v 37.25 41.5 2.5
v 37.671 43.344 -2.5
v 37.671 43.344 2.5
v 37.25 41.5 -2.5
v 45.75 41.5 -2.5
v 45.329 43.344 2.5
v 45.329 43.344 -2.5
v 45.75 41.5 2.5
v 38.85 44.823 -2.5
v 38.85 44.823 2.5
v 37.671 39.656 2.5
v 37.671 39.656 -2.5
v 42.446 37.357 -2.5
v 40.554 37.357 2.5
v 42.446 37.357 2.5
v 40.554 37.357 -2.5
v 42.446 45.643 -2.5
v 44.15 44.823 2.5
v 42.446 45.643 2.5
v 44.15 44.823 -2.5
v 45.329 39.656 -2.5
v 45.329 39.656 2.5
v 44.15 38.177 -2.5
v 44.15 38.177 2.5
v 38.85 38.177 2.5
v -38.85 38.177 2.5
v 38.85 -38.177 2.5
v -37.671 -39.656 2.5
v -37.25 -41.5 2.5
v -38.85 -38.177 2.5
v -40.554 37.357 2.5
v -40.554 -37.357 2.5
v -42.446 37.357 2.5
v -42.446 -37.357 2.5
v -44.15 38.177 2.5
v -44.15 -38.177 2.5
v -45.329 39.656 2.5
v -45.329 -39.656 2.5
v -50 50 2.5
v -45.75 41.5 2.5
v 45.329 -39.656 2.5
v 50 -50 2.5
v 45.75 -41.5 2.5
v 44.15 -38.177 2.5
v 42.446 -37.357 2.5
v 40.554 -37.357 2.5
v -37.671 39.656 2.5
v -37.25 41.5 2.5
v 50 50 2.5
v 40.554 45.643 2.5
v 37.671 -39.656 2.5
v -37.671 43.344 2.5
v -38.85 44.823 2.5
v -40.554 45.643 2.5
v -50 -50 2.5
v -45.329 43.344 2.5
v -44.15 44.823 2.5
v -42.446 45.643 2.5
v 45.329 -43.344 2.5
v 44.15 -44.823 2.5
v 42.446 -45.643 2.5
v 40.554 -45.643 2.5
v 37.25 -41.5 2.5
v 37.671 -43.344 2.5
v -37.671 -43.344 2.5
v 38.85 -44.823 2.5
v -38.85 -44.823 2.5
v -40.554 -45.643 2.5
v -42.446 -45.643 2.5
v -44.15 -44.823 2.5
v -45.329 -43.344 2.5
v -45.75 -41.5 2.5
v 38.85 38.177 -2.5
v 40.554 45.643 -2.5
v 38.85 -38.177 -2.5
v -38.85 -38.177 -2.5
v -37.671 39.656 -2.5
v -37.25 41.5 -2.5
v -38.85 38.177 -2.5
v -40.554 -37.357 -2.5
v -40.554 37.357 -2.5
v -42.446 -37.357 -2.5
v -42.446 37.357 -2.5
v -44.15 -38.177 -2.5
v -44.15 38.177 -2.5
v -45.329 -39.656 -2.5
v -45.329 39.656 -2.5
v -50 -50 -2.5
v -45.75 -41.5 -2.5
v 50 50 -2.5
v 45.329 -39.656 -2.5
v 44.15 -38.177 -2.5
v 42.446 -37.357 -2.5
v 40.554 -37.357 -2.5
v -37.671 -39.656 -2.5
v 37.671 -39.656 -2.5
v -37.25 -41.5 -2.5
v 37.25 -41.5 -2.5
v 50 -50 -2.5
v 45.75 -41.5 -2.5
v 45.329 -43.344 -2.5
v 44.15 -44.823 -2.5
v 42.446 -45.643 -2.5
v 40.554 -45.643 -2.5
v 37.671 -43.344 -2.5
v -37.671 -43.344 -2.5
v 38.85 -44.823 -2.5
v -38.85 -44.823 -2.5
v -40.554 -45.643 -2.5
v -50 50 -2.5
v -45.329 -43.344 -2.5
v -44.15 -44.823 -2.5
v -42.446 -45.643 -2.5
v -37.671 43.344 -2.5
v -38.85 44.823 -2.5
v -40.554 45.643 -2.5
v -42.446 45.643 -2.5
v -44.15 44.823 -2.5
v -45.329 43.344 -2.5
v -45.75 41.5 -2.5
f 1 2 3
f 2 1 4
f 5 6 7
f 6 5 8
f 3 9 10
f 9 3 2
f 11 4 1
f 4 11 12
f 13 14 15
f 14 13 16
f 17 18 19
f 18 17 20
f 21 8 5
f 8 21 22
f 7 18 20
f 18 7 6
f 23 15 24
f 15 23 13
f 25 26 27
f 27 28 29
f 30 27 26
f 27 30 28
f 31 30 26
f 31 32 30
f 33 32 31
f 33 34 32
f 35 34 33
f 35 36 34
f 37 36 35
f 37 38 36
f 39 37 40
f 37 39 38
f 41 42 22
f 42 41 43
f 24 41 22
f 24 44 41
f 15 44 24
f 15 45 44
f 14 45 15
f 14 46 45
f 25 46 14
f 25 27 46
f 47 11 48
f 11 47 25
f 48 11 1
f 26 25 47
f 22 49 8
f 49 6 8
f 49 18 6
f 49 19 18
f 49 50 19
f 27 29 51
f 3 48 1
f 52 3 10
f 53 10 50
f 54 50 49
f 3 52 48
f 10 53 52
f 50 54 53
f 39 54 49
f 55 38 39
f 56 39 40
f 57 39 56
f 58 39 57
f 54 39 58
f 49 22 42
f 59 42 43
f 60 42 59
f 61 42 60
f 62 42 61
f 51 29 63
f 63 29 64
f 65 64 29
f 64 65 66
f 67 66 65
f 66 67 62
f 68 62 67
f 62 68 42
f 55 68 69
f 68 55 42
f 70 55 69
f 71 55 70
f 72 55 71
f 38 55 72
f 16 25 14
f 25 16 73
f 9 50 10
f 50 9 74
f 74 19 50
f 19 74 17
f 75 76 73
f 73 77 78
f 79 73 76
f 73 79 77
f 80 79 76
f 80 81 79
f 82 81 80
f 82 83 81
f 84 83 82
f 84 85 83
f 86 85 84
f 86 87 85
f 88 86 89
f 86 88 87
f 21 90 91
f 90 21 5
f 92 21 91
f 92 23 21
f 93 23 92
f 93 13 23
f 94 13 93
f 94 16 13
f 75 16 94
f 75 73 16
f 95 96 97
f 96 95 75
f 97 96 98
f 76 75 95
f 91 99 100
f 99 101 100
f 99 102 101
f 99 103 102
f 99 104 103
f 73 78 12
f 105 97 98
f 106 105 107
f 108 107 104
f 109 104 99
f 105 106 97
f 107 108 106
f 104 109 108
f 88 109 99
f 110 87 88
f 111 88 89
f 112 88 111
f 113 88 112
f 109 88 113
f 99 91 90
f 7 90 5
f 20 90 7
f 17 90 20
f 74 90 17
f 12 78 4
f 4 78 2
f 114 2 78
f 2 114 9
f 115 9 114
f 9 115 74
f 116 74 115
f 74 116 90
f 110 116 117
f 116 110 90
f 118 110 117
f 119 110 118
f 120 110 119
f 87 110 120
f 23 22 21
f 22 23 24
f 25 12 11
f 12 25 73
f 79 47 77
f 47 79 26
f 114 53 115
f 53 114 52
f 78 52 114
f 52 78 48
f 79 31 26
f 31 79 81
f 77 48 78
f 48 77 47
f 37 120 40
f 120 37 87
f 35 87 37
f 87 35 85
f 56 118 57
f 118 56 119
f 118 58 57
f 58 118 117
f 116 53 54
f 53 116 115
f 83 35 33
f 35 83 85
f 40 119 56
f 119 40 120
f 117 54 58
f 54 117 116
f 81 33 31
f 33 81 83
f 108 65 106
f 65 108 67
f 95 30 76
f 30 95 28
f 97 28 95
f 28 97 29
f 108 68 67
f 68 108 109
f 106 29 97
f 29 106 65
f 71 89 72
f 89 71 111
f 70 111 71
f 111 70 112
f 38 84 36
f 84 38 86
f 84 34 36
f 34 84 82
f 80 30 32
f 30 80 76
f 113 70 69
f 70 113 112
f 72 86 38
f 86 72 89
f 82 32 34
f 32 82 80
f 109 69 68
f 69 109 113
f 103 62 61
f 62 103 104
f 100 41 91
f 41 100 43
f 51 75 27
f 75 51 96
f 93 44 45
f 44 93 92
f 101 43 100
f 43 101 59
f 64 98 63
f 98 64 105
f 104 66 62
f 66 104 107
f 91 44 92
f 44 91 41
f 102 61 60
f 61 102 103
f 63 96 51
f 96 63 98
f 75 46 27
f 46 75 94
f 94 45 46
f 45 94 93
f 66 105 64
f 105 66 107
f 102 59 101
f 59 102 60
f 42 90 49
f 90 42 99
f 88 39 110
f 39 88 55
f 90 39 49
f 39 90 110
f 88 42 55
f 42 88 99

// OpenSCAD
// Generated by SolidPython 1.1.3 on 2023-07-11 01:34:08


difference() {
	cube(center = true, size = [100, 100, 5]);
	union() {
		translate(v = [41.5000000000, 41.5000000000]) {
			cylinder(center = true, h = 5, r = 4.2500000000);
		}
		translate(v = [-41.5000000000, 41.5000000000]) {
			cylinder(center = true, h = 5, r = 4.2500000000);
		}
		translate(v = [-41.5000000000, -41.5000000000]) {
			cylinder(center = true, h = 5, r = 4.2500000000);
		}
		translate(v = [41.5000000000, -41.5000000000]) {
			cylinder(center = true, h = 5, r = 4.2500000000);
		}
	}
}
/***********************************************
*********      SolidPython code:      **********
************************************************
 
import solid
import numbers
import pudb
from solid.utils import *
import viewscad
import subprocess
import os
import os.path as osp
import math
import sys

chamfer_extrude=solid.import_scad("./chamfer_extrude.scad")
chamfer_extrude=chamfer_extrude.chamfer_extrude
r = viewscad.Renderer(width=800, height=800)

def debug(model,f_name,path="/home/ts/code/projects/mfd/designs/debug"):
    solid.scad_render_to_file(model,osp.join(path,f_name)+".scad")
#generate position list of wells using offset from center
wells_pos_from_center_4 = lambda offset: [[-offset,offset],
                                        [offset, offset],
                                        [-offset, -offset],
                                        [offset, -offset]]
#wells_pos_from_center_2 = lambda offset: [[0,offset],
#                                        [0, -offset]]
wells_pos_from_center_2 = lambda offset: [[offset,0],
                                        [-offset,0]]

def make_well(dims,shape=None,height=None,dxf=False):
    def circle_cylinder():
        if dxf or (height is None):
            well = solid.circle(r=dims, segments=64)
        else:
            well = solid.cylinder(r=dims, h=height, segments=64, center = True)
        return well
    if dims is None:
        sys.exit("radius needs to be a number")
    if isinstance(dims, numbers.Number):
        well =circle_cylinder()
    elif len(dims)==1:
        if isinstance(dims[1], numbers.Number):
            well =circle_cylinder()
        else:
            sys.exit("radius needs to be a number")
    elif len(dims)==2:
        well = solid.square(dims,center = True)
    elif len(dims)==3:
        well = solid.cube(dims, center = True)
    return well

def wells_top_bottom(center_gap,device_dims=None,shape=None,height=None, positions = None, dxf = False):
    well_shape = make_well(device_dims,shape=shape,height=height,dxf=dxf)
    wells = []
    if positions is None:
        offset = radius+radius/2.0
        positions = wells_pos_from_center_2(offset)
    if dxf or (height is None):
        height = 0
    for position in positions:
        if dxf:
            wells.append(solid.translate([position[0],position[1]])(well_shape))
        else:
            wells.append(solid.translate([position[0],position[1],height/2.0])(well_shape))
    return  union()(*wells)

#place wells in four corners 
def four_corner(radius,height=None, positions = None, dxf = False):
    #if well pos not specified set
    #to equally spaced by half radius
    if positions is None:
        offset = radius+radius/2.0
        positions = wells_pos_from_center_4(offset)
    if dxf or (height is None):
        height = 0
    #make wells at positions with specified radius and height
    wells = []
    for position in positions:
        #make circle if making dxf
        if dxf:
            well_shape = solid.circle(r=radius, segments=64)
            well_shape = solid.translate([position[0],position[1]])(well_shape)
        #if stl make cylinder
        else:
            well_shape = solid.cylinder(r=radius, h=height, segments=64, center = True)
            well_shape = solid.translate([position[0],position[1],height/2.0])(well_shape)
        wells.append(well_shape)
    return  union()(*wells)

#generate channels 
def make_channels(length,width,height=0,num_chans=1,max_chans=None,spacing=None, dxf = False,
                  rotate_channels=False):
    if dxf or (height is None):
        height = 0
    #if channel gap not defined, is equal to
    if spacing is None: spacing = width
    #calculate number of channels if fitting max num within given width
    if not max_chans is None:
        import math
        num_chans = math.floor((max_chans-spacing)/(width+spacing))
    #get total width of channel section  
    total_width = (width*num_chans)+(spacing*(num_chans-1))

    #make template channel
    #if rotate_channels: width, length = length, width
    if dxf:
        channel_t = solid.square([length,width],center = True)
    else:
        channel_t = solid.cube([length,width,height], center = True)

    #if number channels is even, offset the first channel to center its gap
    if num_chans % 2 == 0: centering = -(width/2.0+spacing/2.0)
    else: centering = 0
    #move template channel up to align bottom at z = 0 
    #and offset center if necessary
    if dxf:
        channel_t = solid.translate([0,centering])(channel_t)
    else:
        channel_t = solid.translate([0,centering,height/2.0])(channel_t)

    #if rotate_channels: length,width = width,length
    #start making the channels
    channels = []
    for i in range(num_chans):
        #if i=0 there is no translation
        #if i=1, we make the first channel adjacent to second
        direction = i

        #if i>=1, we add channels alternating left and right
        if i >= 1:
            direction = -(i/2.0)
            if i % 2 == 1: direction = (-direction)+0.5
                
        #make channel at right position and add it to channel list
        translation_coords = [0,direction*(width+spacing)]
        #if rotate_channels: translation_coords = [direction*(width+spacing),0]
        if dxf:
            channel = solid.translate(translation_coords)(channel_t)
        else:
            channel = solid.translate([*translation_coords,0])(channel_t)
        channels.append(channel)
    
    #group all channels as one object
    channels = union()(*channels)
    #compute the x,y,z dimensions in order to pass as arguments 
    #for construction of other parts of device (such as the chambers)
    measurements = {'x':(length/2.0,-length/2.0),
                    'y':(total_width/2.0,-total_width/2.0)}
    if not dxf:
        measurements['z'] = (height,0)
    if rotate_channels:
        channels = solid.rotate(90)(channels)
        measurements['x'],measurements['y']=measurements['y'],measurements['x']
    return channels,measurements

def make_chambers(msrs,height=None,extra=0,len_until=None,width=None, dxf = False):
    #computes x,y,z length
    total = lambda x : abs(x[0]) + abs(x[1])
    
    #if specific height if specified
    #otherwise use same height as channels
    if dxf:
        pass
    elif not height is None:
        msrs['z'] = (height,0)
    else:
        msrs['z'] = (0,0)
        
    #make copy of measurements from channels to modify chamber dimensions 
    #and add length to chambers as specified
    chamber_dims = msrs.copy()
    #calculate length of chamber to reach specified offset
    if not len_until is None:
        chamber_len = len_until-(msrs['x'][0])
    #or add specified length to channel length (if not specified, adds 0)
    else:
        chamber_len = msrs['x'][0]+extra
    #set the chamber length based 
    chamber_dims['x'] = (chamber_len/2.0,-(chamber_len/2.0))
    #compute final dimensions of chamber
    if not width is None:
        chamber_dims['y'] = (width/2.0,-width/2.0)
    chamber_dims = [total(size) for size in chamber_dims.values()]
        
    #calculate chamber translation offset to place adjacent to channels
    chamber_trslt = msrs['x'][0]+(chamber_len/2.0)
    #compute chamber translation coordinates to align with channels
    #x = 1 moves chamber above channels
    #x = -1 moves chamber below channels
    if dxf:
        trslt = lambda x : [x*(chamber_trslt),0]
    else:
        trslt = lambda x : [x*(chamber_trslt),0,msrs['z'][0]/2.0]
    
    #function to make chamber at top or at bottom 
    if dxf:
        move = lambda x : solid.translate(trslt(x))(solid.square(chamber_dims, center = True) )
    else:
        move = lambda x : solid.translate(trslt(x))(solid.cube(chamber_dims,center = True))
    #make top and bottom chambers and return them as grouped
    top = move(1)
    bottom = move(-1)
    #chambers=solid.rotate(90)(solid.union()(top,bottom))
    chambers=(solid.union()(top,bottom))

    return chambers

#create alignment features 
def alignment_features(unit,dims,grid_size, mask_size = None, alignment = "hollow", units_from_center = (2.5,2.5), corner_len=None):
    width = grid_size[0]*dims[0]
    length = grid_size[1]*dims[1]
    if mask_size is None and corner_len is None:
        corner_len = (dims[0] + dims[1]) /2 / 8
    corner = lambda thickness_div : solid.union()( solid.square([corner_len,corner_len/thickness_div],center=False), solid.square([corner_len/thickness_div,corner_len],center=False) )
    
    def make_full(thickness_div):
        thickness = corner_len/thickness_div
        tr = solid.translate([0, 0, 0 ])(solid.rotate(180)(corner(thickness_div)))
        tr = solid.translate([thickness/2,thickness/2,0])(tr)
        bl = solid.translate([0, 0, 0 ])(solid.rotate(0)(corner(thickness_div)))
        bl = solid.translate([-thickness/2,-thickness/2,0])(bl)
        return solid.union()(tr,bl)
    
    def make_hollow(thickness_div):
        thickness = corner_len/(thickness_div/2)
        inner = make_full(thickness_div)
        outer = make_full(thickness_div/2)
        hollow = outer - inner 
        return hollow
    
    center = (width /2 , length/2)
    mask_pos = lambda x,y : (center[0] + x*(float(units_from_center[0])*dims[0]), center[1] + y*(float(units_from_center[1])*dims[1]))
    positions = []
    positions.append(mask_pos(1,0))
    positions.append(mask_pos(0,1))
    positions.append(mask_pos(-1,0))
    positions.append(mask_pos(0,-1))
    make_mask = lambda mtype : make_hollow(8) if mtype == "hollow" else make_full(8)
    masks = [ solid.translate([*position,0])(make_mask(alignment)) for position in positions]
    
    solid.scad_render_to_file(solid.union()(*masks),"./designs/open_chamber/masks.scad")
    #return unit - solid.union()(*masks)
    return solid.union()(*masks,unit)

def create_outline(thickness, array, dims, grid_size,):
    width = grid_size[0]*dims[0] + thickness *2
    length = grid_size[1]*dims[1] + thickness *2
    outer = solid.translate([-thickness, -thickness,0])(solid.square([width, length]))
    return outer-array

def create_wall(wall_thickness, outline_thickness, dims, grid_size, wall_height = 2000, dxf = False):
    inner_width = grid_size[0]*dims[0] + outline_thickness *2
    inner_length = grid_size[1]*dims[1] + outline_thickness *2
    outer_width = inner_width + wall_thickness * 2
    outer_length = inner_length + wall_thickness * 2
    outer_pos_x = -outline_thickness-wall_thickness
    outer_pos_y = -outline_thickness-wall_thickness
    inner_pos_x = -outline_thickness
    inner_pos_y = -outline_thickness
    if dxf:
        inner_wall = solid.translate([inner_pos_x,
                                      inner_pos_y,
                                      0])(solid.square([inner_width, inner_length]))
        outer_wall = solid.translate([outer_pos_x,
                                      outer_pos_y,
                                      0])(solid.square([outer_width, outer_length]))

        return outer_wall-inner_wall
    else:
        inner_wall = solid.translate([inner_pos_x,
                                      inner_pos_y,
                                      0])(solid.cube([inner_width, inner_length,wall_height]))
        outer_wall = solid.translate([outer_pos_x,
                                      outer_pos_y,
                                      0])(solid.cube([outer_width, outer_length,wall_height]))

        return outer_wall-inner_wall, {'wall_height': wall_height,
                                       'wall_thickness': wall_thickness,
                                       'inner_width':inner_width,
                                       'inner_length': inner_length,
                                       'outer_width': outer_width,
                                       'outer_length': outer_length,
                                       'outer_pos_x' : outer_pos_x,
                                       'outer_pos_y' : outer_pos_y,
                                       'inner_pos_x' : inner_pos_x,
                                       'inner_pos_y' : inner_pos_y}

def create_thicker_wall(wall_thickness, outer_wall_offset, wall_dims, dims, grid_size, height_start = .2, height_end=2, dxf = False):
    addon_wall,thicker_wall_dims = create_wall(wall_thickness, outer_wall_offset, dims, grid_size, wall_height=height_end-height_start, dxf = False)
    addon_wall = solid.translate([0,0,height_start])(addon_wall)

    thicker_wall_dims['wall_height'] = height_end
    thicker_wall_dims['wall_thickness'] = wall_dims['wall_thickness'] + wall_thickness
    return addon_wall, thicker_wall_dims
 
def add_lock_to_wall(wall,wall_dims,y_offset = 0,cut_ratio=0.7,L_length=3, gap_ratio=0.05, axis="x",width_ratio=1/2):
    # Makes L shape
    def make_L(max_length,length_thickness,max_width,width_thickness,height,y_offset):
        length = solid.cube([max_length,length_thickness,height])
        width = solid.cube([width_thickness,max_width,height])
        width = solid.translate([max_length-(width_thickness),0,0])(width)
        L = solid.union()(width,length)
        debug(L,"L")
        if axis == "x":
            L = solid.rotate(-90)(L)
            L = solid.translate([0,max_length,0])(L)
        else:
            L = solid.rotate(-180)(L)
            L = solid.translate([max_length,max_width,0])(L)
        return solid.translate([0,0,y_offset])(L)
    
    lock_length = L_length
    lock_width = wall_dims['wall_thickness']*width_ratio
    lock_length_thickness = lock_width/2
    lock_width_thickness = lock_width/2
    L_lock = make_L(lock_length,lock_length_thickness,lock_width,lock_width_thickness, wall_dims['wall_height']-y_offset, y_offset)
    
    margin_space = lock_length - lock_length*(1-gap_ratio)
    key_length = lock_length-margin_space
    key_length_thickness = lock_length_thickness-(margin_space*2)
    key_width = lock_width-(margin_space*2)
    key_width_thickness = lock_width_thickness-(margin_space*2)
    L_key = make_L(key_length,key_length_thickness,key_width,key_width_thickness, wall_dims['wall_height']-y_offset, y_offset)
    L_key = solid.translate([margin_space,margin_space,0])(L_key)
    L = solid.union()(L_lock,L_key)
    debug(L,"L")
    
    #Make cube to be used as negative to split frame in a half
    #Can choose if making left or right negative, specify ratio of split
    def make_negative(right,cut_ratio):
        if axis == "x":
            if right:
                length = wall_dims['outer_length']*(1-cut_ratio)
                pos_x = wall_dims['outer_pos_x']+(wall_dims['outer_length']*cut_ratio)
            else:
                length = wall_dims['outer_length']*(cut_ratio)
                pos_x = wall_dims['outer_pos_x'] 
            negative = solid.cube([wall_dims['outer_width'],length, wall_dims['wall_height']])
            negative = solid.translate([wall_dims['outer_pos_y'],pos_x,0])(negative)
        else:
            if right:
                length = wall_dims['outer_width']*(1-cut_ratio)
                pos_x = wall_dims['outer_pos_y']+(wall_dims['outer_width']*cut_ratio)
            else:
                length = wall_dims['outer_width']*(cut_ratio)
                pos_x = wall_dims['outer_pos_y'] 
            negative = solid.cube([length,wall_dims['outer_length'], wall_dims['wall_height']])
            negative = solid.translate([pos_x,wall_dims['outer_pos_x'],0])(negative)
        return negative, pos_x, length 
                      
    #Make negatives
    negative_right, right_half_pos_x, right_half_length = make_negative(True,cut_ratio)
    negative_left, left_half_pos_x, right_half_length = make_negative(False,cut_ratio)
    #Make halves
    left_half = solid.difference()(wall,negative_right)
    right_half = solid.difference()(wall,negative_left)
    def place_L(L, L_length,L_width):
        #Place L on top wall       
        offset_to_center = (wall_dims['wall_thickness']-L_width)/2
        if axis == "x":
            y_pos_top = (wall_dims['outer_pos_y'] +
                    wall_dims['outer_width'] - 
                    L_width - offset_to_center)
            top_L = solid.translate([y_pos_top,
                                     right_half_pos_x-(L_length),
                                     0])(L)
            #Place L on bottom wall       
            y_pos_bottom = wall_dims['outer_pos_y']+offset_to_center
            bottom_L = solid.translate([y_pos_bottom,
                                        right_half_pos_x-L_length,
                                        0])(L)
        else:
            y_pos_top = (wall_dims['outer_pos_x'] +
                    wall_dims['outer_length'] -
                    (L_width+offset_to_center))
            top_L = solid.translate([right_half_pos_x-L_length,
                                     y_pos_top,
                                     0])(L)
            #Place L on bottom wall       
            y_pos_bottom = wall_dims['outer_pos_y']+offset_to_center
            bottom_L = solid.translate([right_half_pos_x-L_length,
                                        y_pos_bottom,
                                        0])(L)
        return bottom_L, top_L
    #Make complimentary L pieces through union and differences
    #Make Lock
    bottom_L_lock, top_L_lock = place_L(L_lock,L_length,lock_width)
    left_half = solid.difference()(left_half,bottom_L_lock)
    left_half = solid.difference()(left_half,top_L_lock)
    #Make Key
    bottom_L_key, top_L_key = place_L(L_key,L_length,lock_width)
    right_half = solid.union()(right_half,bottom_L_key)
    right_half = solid.union()(right_half,top_L_key)
    return left_half, right_half


#build a row x col grid of containment units
def make_unit_array(unit,dims,grid_size, dxf = False, alignment = None, mask_size = None,
                    units_from_center = None,alignment_offset=None, alignment_mark_size=1):
    units = []
    for col in range(grid_size[1]):
        for row in range(grid_size[0]):
            if dxf:
                units.append(solid.translate([row*dims[0],col*dims[1]])(unit))
            else:
                units.append(solid.translate([row*dims[0],col*dims[1],dims[2]/2.0])(unit))
    array = solid.union()(*units)
    if (not alignment is None) and dxf:
        if not alignment_offset is None:
            array = solid.translate([alignment_offset[0],alignment_offset[1]])(array)
        array = alignment_features(array,dims, grid_size, alignment = alignment, mask_size = None, units_from_center = units_from_center,corner_len=alignment_mark_size)
        if not alignment_offset is None:
            array = solid.translate([-alignment_offset[0],-alignment_offset[1]])(array)
    return array


def make_taylor(wells_pos = wells_pos_from_center_4(2.25), well_rad = 1.5 ,
                well_height = 2, chan_w = 0.01, chan_l = 1, chan_h = 0.010 ,
                chan_gap = 0.040, max_chans = None,num_chans=100, chamber_height  = 0.100,
                columns = 1, rows = 1, chamber_len_until=2.25, add_channels = True, add_wells = True, 
                add_chambers = True, save_path = "./", alignment = None, units_from_center = 2,
                mask_size = None, render_stl = False, outline_thickness = 0.050, dxf = True,
                wall_height = 15, wall_thickness = 0.95, casing_x=9, casing_y=9, casing_z=0,rotate_units=0):

    dims = [casing_x, casing_y, casing_z]
    wells = four_corner(well_rad,well_height, dxf = dxf, positions = wells_pos)
    debug(wells,"wells")
    channels, msrs = make_channels(chan_l,chan_w,chan_h,dxf=dxf, spacing = chan_gap, max_chans=max_chans,num_chans=num_chans)
    debug(channels,"channels")
    chambers = make_chambers(msrs,dxf = dxf, height=chamber_height,len_until=chamber_len_until)
    debug(chambers,"chambers")

    #add together and render
    device_parts = []
    if add_channels:
        device_parts.append(channels)
    if add_wells:
        device_parts.append(wells)
    if add_chambers:
        device_parts.append(chambers)
    device=union()(*device_parts)
    device = rotate(rotate_units)(device)

    device=solid.translate([dims[0]/2.0,dims[1]/2.0,0])(device)
    channels = rotate(rotate_units)(channels)
    channels=solid.translate([dims[0]/2,dims[1]/2,0])(channels)
    chambers_wells = union()(wells,chambers)
    chambers_wells = rotate(rotate_units)(chambers_wells)
    chambers_wells=solid.translate([dims[0]/2,dims[1]/2,0])(chambers_wells)

    file_name = str(rows)+'x'+str(columns)+'_units_'
    grid_size = [rows,columns]

    if alignment:
        alignment="full"
    device = make_unit_array(device,dims,grid_size, dxf=dxf, alignment = alignment,
                                 units_from_center = units_from_center)
    channels = make_unit_array(channels,dims,grid_size, dxf=dxf, alignment = alignment,
                                 units_from_center = units_from_center)
    if alignment=="full":
        alignment="hollow"

    chambers_wells = make_unit_array(chambers_wells,dims,grid_size, dxf=dxf, alignment = alignment,
                                 units_from_center =units_from_center)

    def save_model(model,prefix):
        model_fname = os.path.abspath(save_path+prefix+"_"+file_name+".scad")
        solid.scad_render_to_file(model,model_fname)
        return model_fname

    wells_fname = save_model(wells,"wells")
    channels_fname = save_model(channels,"channels")
    device_fname = save_model(device,"device")
    chambers_wells_fname = save_model(chambers_wells,"chambers_wells")
    return (chambers_wells,chambers_wells_fname), (channels,channels_fname), (device,device_fname)

def make_device(design='open',rows=8,columns=6,wells_pos = 4.5,well_offset=3.2, well_rad=3.2,well_height=0.1,
                chan_l=1,chan_w=0.01,chan_h=0.01,chan_gap=0.015,num_chans=101,dxf=True,save_path="./designs/open_chamber/",
                casing_x=9.0,casing_y=18.0,casing_z=0,rotate_units=90,units_from_center=(3,1),chamber_len_until=4.5,
                chamber_width=None,alignment=True, add_wells=True, add_channels=True,add_chambers=True):

    dims = [casing_x, casing_y, casing_z]
    if design == "open":
        wells_pos=wells_pos_from_center_2(wells_pos)
        wells = wells_top_bottom(well_offset*2,device_dims=well_rad,height=well_height, dxf = dxf, positions = wells_pos)
    elif design == "closed":
        wells_pos=wells_pos_from_center_4(wells_pos)
        debug(wells,"wells")
        wells = four_corner(well_offset,well_heightdevice_dims=well_rad, dxf = dxf, positions = wells_pos)
    else:
        print(design+" is not a valid design.\n Choose valid design: 'open' or 'closed'")
        exit()
    wells = rotate(rotate_units)(wells)
    wells=solid.translate([dims[0]/2,dims[1]/2,0])(wells)
    debug(wells,"wells")

    channels, msrs = make_channels(chan_l,chan_w,chan_h,dxf=dxf, spacing = chan_gap, num_chans=num_chans,rotate_channels=False)
    channels = rotate(rotate_units)(channels)
    channels=solid.translate([dims[0]/2,dims[1]/2,0])(channels)

    chambers=make_chambers(msrs,height=None,extra=0,len_until=chamber_len_until, width=chamber_width,dxf = dxf)
    chambers = rotate(rotate_units)(chambers)
    chambers=solid.translate([dims[0]/2,dims[1]/2,0])(chambers)

    device_parts = []
    if add_channels:
        device_parts.append(channels)
    if add_wells:
        device_parts.append(wells)
    if add_chambers:
        device_parts.append(chambers)
    device = union()(*device_parts)
    #device = rotate(rotate_units)(device)
    #device=solid.translate([dims[0]/2.0,dims[1]/2.0,0])(device)

    chambers_wells = []
    if add_chambers:
        chambers_wells.append(chambers)
    if add_wells:
        chambers_wells.append(wells)
    chambers_wells = union()(*chambers_wells)
    #chambers_wells = union()(wells,chambers)
    #chambers_wells = rotate(rotate_units)(chambers_wells)
    #chambers_wells=solid.translate([dims[0]/2,dims[1]/2,0])(chambers_wells)

    file_name = str(rows)+'x'+str(columns)+'_units_'

    grid_size = [rows,columns]
    if alignment:
        alignment="full"
    device = make_unit_array(device,dims,grid_size, dxf=dxf, alignment = alignment,
                                 units_from_center = units_from_center)
    channels = make_unit_array(channels,dims,grid_size, dxf=dxf, alignment = alignment,
                                 units_from_center = units_from_center)
    if alignment=="full":
        alignment="hollow"

    chambers_wells = make_unit_array(chambers_wells,dims,grid_size, dxf=dxf, alignment = alignment,
                                 units_from_center =units_from_center)

    def save_model(model,prefix):
        model_fname = os.path.abspath(save_path+prefix+"_"+file_name+".scad")
        solid.scad_render_to_file(model,model_fname)
        return model_fname

    wells_fname = save_model(wells,"wells")
    channels_fname = save_model(channels,"channels")
    device_fname = save_model(device,"device")
    chambers_wells_fname = save_model(chambers_wells,"chambers_wells")
    return (chambers_wells,chambers_wells_fname), (channels,channels_fname), (device,device_fname)


def make_open_chamber(rows=8,columns=6,wells_pos = wells_pos_from_center_2(4.5), well_rad=3.2,well_height=0.1,
                      chan_l=1,chan_w=0.01,chan_h=0.01,chan_gap=0.015,num_chans=101,dxf=True,save_path="./designs/open_chamber/",
                      casing_x=9.0,casing_y=18.0,casing_z=0,rotate_units=90,units_from_center=(3,1),chamber_len_until=4.5,
                      chamber_width=None,alignment=True, add_wells=True, add_channels=True,add_chambers=True):

    dims = [casing_x, casing_y, casing_z]
    wells = wells_top_bottom(well_rad,height=well_height, dxf = dxf, positions = wells_pos)
    channels, msrs = make_channels(chan_l,chan_w,chan_h,dxf=dxf, spacing = chan_gap, num_chans=num_chans,rotate_channels=False)
    chambers=make_chambers(msrs,height=None,extra=0,len_until=chamber_len_until, width=chamber_width,dxf = dxf)
    debug(chambers,"chambers")
    device_parts = []
    if add_channels:
        device_parts.append(channels)
    if add_wells:
        device_parts.append(wells)
    if add_chambers:
        device_parts.append(chambers)
    device = union()(*device_parts)
    device = rotate(rotate_units)(device)
    device=solid.translate([dims[0]/2.0,dims[1]/2.0,0])(device)
    channels = rotate(rotate_units)(channels)
    channels=solid.translate([dims[0]/2,dims[1]/2,0])(channels)
    chambers_wells = union()(wells,chambers)
    chambers_wells = rotate(rotate_units)(chambers_wells)
    chambers_wells=solid.translate([dims[0]/2,dims[1]/2,0])(chambers_wells)

    file_name = str(rows)+'x'+str(columns)+'_units_'

    grid_size = [rows,columns]
    if alignment:
        alignment="full"
    device = make_unit_array(device,dims,grid_size, dxf=dxf, alignment = alignment,
                                 units_from_center = units_from_center)
    channels = make_unit_array(channels,dims,grid_size, dxf=dxf, alignment = alignment,
                                 units_from_center = units_from_center)
    if alignment=="full":
        alignment="hollow"

    chambers_wells = make_unit_array(chambers_wells,dims,grid_size, dxf=dxf, alignment = alignment,
                                 units_from_center =units_from_center)

    def save_model(model,prefix):
        model_fname = os.path.abspath(save_path+prefix+"_"+file_name+".scad")
        solid.scad_render_to_file(model,model_fname)
        return model_fname

    wells_fname = save_model(wells,"wells")
    channels_fname = save_model(channels,"channels")
    device_fname = save_model(device,"device")
    chambers_wells_fname = save_model(chambers_wells,"chambers_wells")
    return (chambers_wells,chambers_wells_fname), (channels,channels_fname), (device,device_fname)

def to_dxf(scad_path):
    dxf_path = scad_path.replace(".scad",".dxf")
    subprocess.call(["openscad", "-o", dxf_path, scad_path])
    import ezdxf
    temp_dxf = ezdxf.readfile(dxf_path)
    temp_dxf.saveas(dxf_path)

#def make_walls(diameter,thickness,grid_size,dims,height=20,segments=256,make_inner=True):
#    wafer_wall_out = solid.cylinder(r=diameter/2,h=height, segments=segments)
#    wafer_wall_in = solid.cylinder(r=(diameter/2-thickness),h=height, segments=segments)
#    wafer_wall = solid.difference()(wafer_wall_out,wafer_wall_in)
#    wafer_wall = solid.translate([grid_size[1]*dims[1]/2.0,grid_size[0]*dims[0]/2.0])(wafer_wall)
#
#    vertical_wall_length = grid_size[1]*dims[1]
#    horizontal_wall_length = grid_size[0]*dims[0]
#    vertical_wall = solid.cube([vertical_wall_length,thickness,height],center = True)
#    vertical_wall = solid.translate([vertical_wall_length/2,0,height/2])(vertical_wall)
#    horizontal_wall = solid.cube([thickness,horizontal_wall_length,height],center = True)
#    horizontal_wall = solid.translate([0,vertical_wall_length/2,height/2])(horizontal_wall)
#    walls = []
#    walls.append(horizontal_wall)
#    walls.append(vertical_wall)
#    for col in range(grid_size[1]):
#        if col == grid_size[1]-1: 
#            walls.append(solid.translate([0,(col+1)*dims[1]])(vertical_wall))
#        elif col > 0 and col < grid_size[1]-1 and make_inner==True:
#            walls.append(solid.translate([0,(col+1)*dims[1]])(vertical_wall))
#    for row in range(grid_size[0]):
#        if row == grid_size[0]-1: 
#            walls.append(solid.translate([(row+1)*dims[0],0])(horizontal_wall))
#        elif row > 0 and row < grid_size[0]-1 and make_inner==True:
#            walls.append(solid.translate([(row+1)*dims[0],0])(horizontal_wall))
#    walls = union()(*walls)
#    wafer_walls = union()(walls,wafer_wall)
#    return walls,wafer_wall,wafer_walls

def make_walls(diameter,thickness,grid_size,dims,height=20,segments=256,make_inner=True,padx=0,pady=0):
    wafer_wall_out = solid.cylinder(r=diameter/2,h=height, segments=segments)
    wafer_wall_in = solid.cylinder(r=(diameter/2-thickness),h=height, segments=segments)
    wafer_wall = solid.difference()(wafer_wall_out,wafer_wall_in)
    wafer_wall = solid.translate([grid_size[1]*dims[1]/2.0,grid_size[0]*dims[0]/2.0])(wafer_wall)

    vertical_wall_length = grid_size[0]*dims[0]+padx
    horizontal_wall_length = grid_size[1]*dims[1]+pady
    vertical_wall = solid.cube([vertical_wall_length,thickness,height],center = True)
    vertical_wall = solid.translate([vertical_wall_length/2-pady/2,-padx/2,height/2])(vertical_wall)
    horizontal_wall = solid.cube([thickness,horizontal_wall_length,height],center = True)
    horizontal_wall = solid.translate([-pady/2,horizontal_wall_length/2-padx/2,height/2])(horizontal_wall)
    walls = []
    walls.append(horizontal_wall)
    walls.append(vertical_wall)
    for col in range(grid_size[1]):
        if col == grid_size[1]-1: 
            walls.append(solid.translate([0,(col+1)*dims[1]+pady])(vertical_wall))
        elif col > 0 and col < grid_size[1]-1 and make_inner==True:
            walls.append(solid.translate([0,(col+1)*dims[1]])(vertical_wall))
    for row in range(grid_size[0]):
        if row == grid_size[0]-1: 
            walls.append(solid.translate([(row+1)*dims[0]+padx,0])(horizontal_wall))
        elif row > 0 and row < grid_size[0]-1 and make_inner==True:
            walls.append(solid.translate([(row+1)*dims[0],0])(horizontal_wall))
    walls = union()(*walls)
    wafer_walls = union()(walls,wafer_wall)
    return walls,wafer_wall,wafer_walls

def save_model(model,base_path,base_name,dxf=True):
    if not os.path.exists(base_path):
        os.makedirs(base_path)
    dxf_path=osp.join(base_path,base_name+".scad")
    solid.scad_render_to_file(model,osp.join(dxf_path))
    if dxf:
        to_dxf(dxf_path)

def make_wafer(diameter,flat_len,thickness):
    wafer = solid.cylinder(r1=diameter/2,r2=diameter/2,h=thickness,segments=512,)()
    x_start_flat=(flat_len/2)
    y_start_flat = math.sqrt(((diameter/2)**2) - (x_start_flat**2) )
    height_delete_flat=diameter/2-y_start_flat
    flat_delete = solid.cube([flat_len,height_delete_flat,thickness],center=False)()
    flat_delete = solid.translate([-flat_len/2,y_start_flat,0])(flat_delete)
    wafer = solid.difference()(wafer,flat_delete)
    wafer = solid.rotate(90)(wafer)
    return wafer

def add_wafer_to_mask(wafer_size,flat_len,mask,grid_size,dims,wafer_line_thickness=0.1,outer_mask_thickness=5,alignment_offset=None):
    def make_wafer_mask(wafer_size,flat_len):
        wafer_mask = make_wafer(wafer_size,flat_len,1)
        wafer_mask = solid.projection()(wafer_mask)
        wafer_mask = solid.translate([grid_size[0]*dims[0]/2.0,grid_size[1]*dims[1]/2.0])(wafer_mask)
        if not alignment_offset is None:
            wafer_mask = solid.translate([-alignment_offset[0],-alignment_offset[1]])(wafer_mask)
        return wafer_mask

    inner_wafer_line_mask = make_wafer_mask(wafer_size-wafer_line_thickness/2,flat_len)
    outer_wafer_line_mask = make_wafer_mask(wafer_size+wafer_line_thickness/2,flat_len)
    outer_wafer_mask = make_wafer_mask(wafer_size+outer_mask_thickness,flat_len)
    outer_wafer_mask = solid.difference()(outer_wafer_mask,outer_wafer_line_mask)
    wafer_mask = solid.union()(outer_wafer_mask,inner_wafer_line_mask)

    return solid.difference()(wafer_mask,mask)

def make_posts(post_shape,post_height):
    posts = solid.linear_extrude(height=post_height)(post_shape)
    return posts

def make_wafer_empty(diameter,flat_len,thickness,margin,notch_len=20,notch_height=5,oversize=1.01):
    diameter*=oversize
    flat_len*=oversize
    wafer = make_wafer(diameter,flat_len,thickness)
    holder = solid.cylinder(r1=diameter/2+margin,r2=diameter/2+margin,h=thickness,segments=512)()
    holder = solid.difference()(holder,wafer)

    x_start_flat=(flat_len/2)
    y_start_flat = math.sqrt(((diameter/2)**2) - (x_start_flat**2) )
    height_delete_flat=diameter/2-y_start_flat
    notch = solid.cube([notch_len,notch_height,thickness],center=False)()
    notch = solid.translate([-notch_len/2,y_start_flat,0])(notch)
    notch = solid.rotate(90)(notch)
    return solid.difference()(holder,notch)

def wafer_print_calibration(diameter,thickness,height,z_offset):
    circles = []
    radii = []
    radii.append(diameter/2.0*0.8)
    radii.append(diameter/2.0*0.6)
    radii.append(diameter/2.0*0.4)
    radii.append(diameter/2.0*0.2)
    for radius in radii:
        inner = solid.cylinder(r1=radius-(thickness/2.0),r2=radius-(thickness/2.0),h=thickness,segments=512,)()
        outer = solid.cylinder(r1=radius+(thickness/2.0),r2=radius+(thickness/2.0),h=thickness,segments=512,)()
        diff = solid.difference()(outer,inner)
        circles.append(diff)
    circles = solid.union()(*circles)
    circles = solid.translate([0,0,z_offset])(circles)
    return circles

def make_rack(wells,dims,grid_size,alignment_offset,rack_x,rack_y,rack_thickness,bolt_width,add_bolts=True):

    #get X and Y dimensions of gride of pipette tips
    X_len = dims[0]*grid_size[0]
    Y_len = dims[1]*grid_size[1]
    #make rack
    rack = solid.cube([rack_x,rack_y,rack_thickness],center=True)

    if add_bolts:
    #add bolt holes
        bolt_hole=solid.cylinder(r=bolt_width/2,h=rack_thickness,center=True)()
        bolt_holes = []
        bolt_holes.append(solid.translate([rack_x/2-1.5*bolt_width,rack_y/2-1.5*bolt_width])(bolt_hole))
        bolt_holes.append(solid.translate([-rack_x/2+1.5*bolt_width,rack_y/2-1.5*bolt_width])(bolt_hole))
        bolt_holes.append(solid.translate([-rack_x/2+1.5*bolt_width,-rack_y/2+1.5*bolt_width])(bolt_hole))
        bolt_holes.append(solid.translate([rack_x/2-1.5*bolt_width,-rack_y/2+1.5*bolt_width])(bolt_hole))
        bolt_holes = solid.union()(*bolt_holes)
        rack=solid.difference()(rack,bolt_holes)
    rack_support = rack

    #center rack with pipette holes
    rack = solid.translate([0,0,rack_thickness/2])(rack)
    rack = solid.translate([X_len/2,Y_len/2])(rack)
    rack = solid.translate([-alignment_offset[0],-alignment_offset[1]])(rack)
    wells = solid.linear_extrude(height=rack_thickness)(wells)
    rack = solid.difference()(rack,wells)
    return rack, rack_support

def make_pillar(wells,dims,grid_size,alignment_offset,rack_x,rack_y,pillar_height,rack_thickness,bolt_width,add_bolts=True,taper_angle=1,bolt_position_corner=1.5):

    #get X and Y dimensions of gride of pipette tips
    X_len = dims[0]*grid_size[0]
    Y_len = dims[1]*grid_size[1]
    #make rack
    rack = solid.cube([rack_x,rack_y,rack_thickness],center=True)
    
    if add_bolts:
    #add bolt holes
        bolt_hole=solid.cylinder(r=bolt_width/2,h=rack_thickness,center=True)()
        bolt_holes = []
        bolt_holes.append(solid.translate([rack_x/2-bolt_position_corner*bolt_width,rack_y/2-bolt_position_corner*bolt_width])(bolt_hole))
        bolt_holes.append(solid.translate([-rack_x/2+bolt_position_corner*bolt_width,rack_y/2-bolt_position_corner*bolt_width])(bolt_hole))
        bolt_holes.append(solid.translate([-rack_x/2+bolt_position_corner*bolt_width,-rack_y/2+bolt_position_corner*bolt_width])(bolt_hole))
        bolt_holes.append(solid.translate([rack_x/2-bolt_position_corner*bolt_width,-rack_y/2+bolt_position_corner*bolt_width])(bolt_hole))
        bolt_holes = solid.union()(*bolt_holes)
        rack=solid.difference()(rack,bolt_holes)
    rack_support = rack

    #center rack with pipette holes
    #rack = solid.translate([0,0,-rack_thickness])(rack)
    rack = solid.translate([X_len/2,Y_len/2])(rack)
    rack = solid.translate([-alignment_offset[0],-alignment_offset[1]])(rack)
    if not taper_angle == 0:
        wells=chamfer_extrude(pillar_height,taper_angle,segments=20)(wells)
    else:
        wells = solid.linear_extrude(height=pillar_height)(wells)
    rack = solid.union()(rack,wells)
    return rack, rack_support

def deg_taper_len(height,deg):
    if not deg == 0:
        return height*math.tan(math.radians(deg))
    else:
        return 0









 
 
************************************************/
